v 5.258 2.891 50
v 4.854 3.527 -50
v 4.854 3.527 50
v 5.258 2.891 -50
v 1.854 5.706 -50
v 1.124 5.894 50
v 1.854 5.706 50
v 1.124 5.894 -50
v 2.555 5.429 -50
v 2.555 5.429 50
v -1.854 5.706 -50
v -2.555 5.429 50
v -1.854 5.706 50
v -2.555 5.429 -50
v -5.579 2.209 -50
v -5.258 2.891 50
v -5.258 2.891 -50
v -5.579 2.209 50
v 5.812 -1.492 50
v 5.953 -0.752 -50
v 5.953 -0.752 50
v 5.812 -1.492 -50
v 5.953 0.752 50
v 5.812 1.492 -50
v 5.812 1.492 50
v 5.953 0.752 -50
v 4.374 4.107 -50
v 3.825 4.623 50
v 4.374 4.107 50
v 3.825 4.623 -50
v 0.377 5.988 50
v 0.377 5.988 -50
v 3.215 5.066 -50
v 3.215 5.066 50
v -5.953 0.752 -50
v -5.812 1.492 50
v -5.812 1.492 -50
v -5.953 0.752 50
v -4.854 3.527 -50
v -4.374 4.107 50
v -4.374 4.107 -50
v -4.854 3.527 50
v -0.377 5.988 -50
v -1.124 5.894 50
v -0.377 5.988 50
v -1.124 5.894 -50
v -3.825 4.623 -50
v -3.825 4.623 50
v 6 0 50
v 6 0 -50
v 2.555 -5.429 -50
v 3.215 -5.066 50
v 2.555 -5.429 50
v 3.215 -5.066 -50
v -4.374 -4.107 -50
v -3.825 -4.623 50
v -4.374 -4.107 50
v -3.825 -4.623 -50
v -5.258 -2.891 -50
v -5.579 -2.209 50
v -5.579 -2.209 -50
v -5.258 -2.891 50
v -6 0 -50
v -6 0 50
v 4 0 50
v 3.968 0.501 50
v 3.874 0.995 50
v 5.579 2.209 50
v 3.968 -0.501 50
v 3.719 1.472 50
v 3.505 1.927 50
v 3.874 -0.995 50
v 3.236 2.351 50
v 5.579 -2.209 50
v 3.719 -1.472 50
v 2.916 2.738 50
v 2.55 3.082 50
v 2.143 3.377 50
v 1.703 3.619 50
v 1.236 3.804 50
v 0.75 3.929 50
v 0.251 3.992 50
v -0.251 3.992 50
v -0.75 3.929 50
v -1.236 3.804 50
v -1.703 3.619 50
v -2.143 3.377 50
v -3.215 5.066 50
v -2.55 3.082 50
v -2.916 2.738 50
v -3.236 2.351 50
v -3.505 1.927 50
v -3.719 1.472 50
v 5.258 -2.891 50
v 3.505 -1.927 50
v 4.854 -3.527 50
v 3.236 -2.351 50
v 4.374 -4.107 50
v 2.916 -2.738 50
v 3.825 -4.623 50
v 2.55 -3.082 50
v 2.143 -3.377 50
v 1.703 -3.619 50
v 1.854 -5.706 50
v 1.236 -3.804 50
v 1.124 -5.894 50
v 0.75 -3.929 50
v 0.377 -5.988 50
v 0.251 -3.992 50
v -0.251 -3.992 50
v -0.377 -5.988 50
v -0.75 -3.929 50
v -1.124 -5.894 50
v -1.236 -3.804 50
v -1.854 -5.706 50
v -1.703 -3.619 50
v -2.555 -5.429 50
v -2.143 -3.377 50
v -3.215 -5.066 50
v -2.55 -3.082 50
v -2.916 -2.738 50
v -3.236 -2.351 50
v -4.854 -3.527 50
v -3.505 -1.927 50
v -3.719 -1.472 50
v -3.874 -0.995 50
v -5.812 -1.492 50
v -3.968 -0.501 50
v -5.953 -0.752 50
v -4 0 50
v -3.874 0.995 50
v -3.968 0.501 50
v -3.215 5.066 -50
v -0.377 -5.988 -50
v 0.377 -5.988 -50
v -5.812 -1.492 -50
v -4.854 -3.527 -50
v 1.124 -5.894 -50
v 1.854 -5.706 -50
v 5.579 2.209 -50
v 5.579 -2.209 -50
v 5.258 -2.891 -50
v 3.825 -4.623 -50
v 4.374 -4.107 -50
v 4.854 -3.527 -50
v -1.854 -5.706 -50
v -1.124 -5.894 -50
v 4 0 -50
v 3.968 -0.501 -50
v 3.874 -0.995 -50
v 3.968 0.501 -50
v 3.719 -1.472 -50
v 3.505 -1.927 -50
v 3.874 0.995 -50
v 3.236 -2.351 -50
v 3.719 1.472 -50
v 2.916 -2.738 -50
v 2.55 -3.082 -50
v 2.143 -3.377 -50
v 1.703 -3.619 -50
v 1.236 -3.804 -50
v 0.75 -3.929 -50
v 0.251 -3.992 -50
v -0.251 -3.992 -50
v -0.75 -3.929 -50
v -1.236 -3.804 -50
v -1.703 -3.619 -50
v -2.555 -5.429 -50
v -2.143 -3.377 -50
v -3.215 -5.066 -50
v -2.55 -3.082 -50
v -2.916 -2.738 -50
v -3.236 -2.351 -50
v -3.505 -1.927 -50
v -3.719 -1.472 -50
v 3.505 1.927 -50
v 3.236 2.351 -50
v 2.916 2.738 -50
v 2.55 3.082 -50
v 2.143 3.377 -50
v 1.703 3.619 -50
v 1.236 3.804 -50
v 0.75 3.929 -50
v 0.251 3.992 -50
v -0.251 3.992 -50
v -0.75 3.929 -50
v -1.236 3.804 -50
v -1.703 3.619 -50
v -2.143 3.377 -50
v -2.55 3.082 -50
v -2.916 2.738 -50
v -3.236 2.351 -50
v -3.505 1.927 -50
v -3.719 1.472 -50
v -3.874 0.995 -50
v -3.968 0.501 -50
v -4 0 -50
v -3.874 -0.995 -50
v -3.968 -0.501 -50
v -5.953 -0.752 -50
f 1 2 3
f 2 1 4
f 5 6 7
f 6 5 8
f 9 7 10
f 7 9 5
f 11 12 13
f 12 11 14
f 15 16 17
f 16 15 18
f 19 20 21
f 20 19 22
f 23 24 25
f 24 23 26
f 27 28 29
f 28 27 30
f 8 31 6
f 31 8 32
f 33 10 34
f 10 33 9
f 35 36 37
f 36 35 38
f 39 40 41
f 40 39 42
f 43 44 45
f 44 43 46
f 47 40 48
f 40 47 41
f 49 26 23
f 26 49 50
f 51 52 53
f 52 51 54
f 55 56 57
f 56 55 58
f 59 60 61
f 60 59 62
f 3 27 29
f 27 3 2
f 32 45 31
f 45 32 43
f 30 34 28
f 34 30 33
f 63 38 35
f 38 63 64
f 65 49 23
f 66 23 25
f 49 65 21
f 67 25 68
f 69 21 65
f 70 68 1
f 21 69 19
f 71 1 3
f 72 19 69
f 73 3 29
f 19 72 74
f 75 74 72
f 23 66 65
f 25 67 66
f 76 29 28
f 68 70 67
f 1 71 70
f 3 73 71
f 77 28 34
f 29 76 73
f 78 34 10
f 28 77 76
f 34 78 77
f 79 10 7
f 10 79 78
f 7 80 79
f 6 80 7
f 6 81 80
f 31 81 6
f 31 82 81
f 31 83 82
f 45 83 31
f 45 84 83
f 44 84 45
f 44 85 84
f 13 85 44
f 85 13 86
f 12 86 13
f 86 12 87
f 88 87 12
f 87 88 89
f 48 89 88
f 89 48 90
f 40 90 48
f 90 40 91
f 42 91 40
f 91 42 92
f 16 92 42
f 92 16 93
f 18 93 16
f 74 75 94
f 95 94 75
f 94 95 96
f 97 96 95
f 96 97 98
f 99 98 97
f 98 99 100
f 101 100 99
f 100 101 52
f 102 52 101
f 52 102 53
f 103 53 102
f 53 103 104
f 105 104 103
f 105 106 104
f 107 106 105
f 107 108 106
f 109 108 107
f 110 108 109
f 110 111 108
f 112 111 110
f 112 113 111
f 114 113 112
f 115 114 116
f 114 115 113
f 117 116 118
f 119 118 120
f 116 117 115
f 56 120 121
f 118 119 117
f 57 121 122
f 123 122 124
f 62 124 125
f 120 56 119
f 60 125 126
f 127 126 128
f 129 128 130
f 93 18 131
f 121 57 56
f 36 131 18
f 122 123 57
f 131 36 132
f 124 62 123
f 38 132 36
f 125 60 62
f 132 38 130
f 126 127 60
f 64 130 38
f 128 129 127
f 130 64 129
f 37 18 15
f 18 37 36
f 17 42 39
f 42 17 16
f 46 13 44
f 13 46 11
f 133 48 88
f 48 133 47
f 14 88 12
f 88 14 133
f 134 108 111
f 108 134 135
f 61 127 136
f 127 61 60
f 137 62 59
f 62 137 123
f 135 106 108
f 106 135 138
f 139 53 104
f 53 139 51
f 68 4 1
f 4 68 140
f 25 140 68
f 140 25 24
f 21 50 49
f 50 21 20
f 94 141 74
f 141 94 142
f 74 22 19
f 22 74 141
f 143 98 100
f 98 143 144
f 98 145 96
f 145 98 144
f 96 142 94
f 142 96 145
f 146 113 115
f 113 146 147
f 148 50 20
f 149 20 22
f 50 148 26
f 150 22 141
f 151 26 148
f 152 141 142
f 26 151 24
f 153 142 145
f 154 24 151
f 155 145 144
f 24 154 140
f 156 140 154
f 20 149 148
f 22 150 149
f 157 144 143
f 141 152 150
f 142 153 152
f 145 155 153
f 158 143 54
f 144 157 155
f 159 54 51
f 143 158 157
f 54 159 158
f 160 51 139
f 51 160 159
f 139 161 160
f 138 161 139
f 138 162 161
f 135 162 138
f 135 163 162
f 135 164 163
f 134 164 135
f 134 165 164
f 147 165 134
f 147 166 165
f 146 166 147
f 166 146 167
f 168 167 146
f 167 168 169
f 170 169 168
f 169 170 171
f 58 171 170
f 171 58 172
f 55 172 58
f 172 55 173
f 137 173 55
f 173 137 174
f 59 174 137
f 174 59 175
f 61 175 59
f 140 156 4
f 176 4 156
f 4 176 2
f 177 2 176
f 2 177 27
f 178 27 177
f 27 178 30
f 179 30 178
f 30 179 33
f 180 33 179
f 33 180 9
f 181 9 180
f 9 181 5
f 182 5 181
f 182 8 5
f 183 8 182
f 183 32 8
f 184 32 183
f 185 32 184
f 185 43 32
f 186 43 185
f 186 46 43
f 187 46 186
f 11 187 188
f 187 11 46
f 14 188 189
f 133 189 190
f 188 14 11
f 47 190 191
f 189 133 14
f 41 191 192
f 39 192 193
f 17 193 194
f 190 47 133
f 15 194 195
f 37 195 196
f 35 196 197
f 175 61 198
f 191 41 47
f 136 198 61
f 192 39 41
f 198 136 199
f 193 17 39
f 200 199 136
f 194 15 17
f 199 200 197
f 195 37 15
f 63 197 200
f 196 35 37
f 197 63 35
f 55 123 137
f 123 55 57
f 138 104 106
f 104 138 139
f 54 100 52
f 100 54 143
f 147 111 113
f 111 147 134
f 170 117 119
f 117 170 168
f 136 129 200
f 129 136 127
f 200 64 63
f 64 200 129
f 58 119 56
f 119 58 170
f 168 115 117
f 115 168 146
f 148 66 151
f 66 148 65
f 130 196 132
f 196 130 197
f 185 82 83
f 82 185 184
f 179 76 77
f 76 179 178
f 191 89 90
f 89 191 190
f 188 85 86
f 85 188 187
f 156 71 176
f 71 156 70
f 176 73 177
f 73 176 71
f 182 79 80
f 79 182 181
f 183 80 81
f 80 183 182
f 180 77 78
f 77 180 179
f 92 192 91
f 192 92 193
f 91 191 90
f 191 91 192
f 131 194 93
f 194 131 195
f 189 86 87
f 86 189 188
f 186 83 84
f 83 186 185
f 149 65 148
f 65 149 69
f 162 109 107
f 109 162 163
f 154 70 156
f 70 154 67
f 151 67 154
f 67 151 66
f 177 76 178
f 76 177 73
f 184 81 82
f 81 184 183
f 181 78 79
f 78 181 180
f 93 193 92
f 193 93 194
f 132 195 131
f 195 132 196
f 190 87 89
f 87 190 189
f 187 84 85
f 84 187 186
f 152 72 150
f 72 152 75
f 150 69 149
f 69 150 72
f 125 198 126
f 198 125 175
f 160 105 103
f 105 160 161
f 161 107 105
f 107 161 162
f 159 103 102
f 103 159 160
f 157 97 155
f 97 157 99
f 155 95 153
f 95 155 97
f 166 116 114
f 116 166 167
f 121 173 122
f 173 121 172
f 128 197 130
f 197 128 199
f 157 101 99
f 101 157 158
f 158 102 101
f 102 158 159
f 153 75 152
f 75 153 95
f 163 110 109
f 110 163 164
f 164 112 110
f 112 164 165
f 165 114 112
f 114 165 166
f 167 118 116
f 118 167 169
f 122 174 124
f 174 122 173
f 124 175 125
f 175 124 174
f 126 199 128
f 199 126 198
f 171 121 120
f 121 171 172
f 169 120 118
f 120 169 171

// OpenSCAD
$fn = 50;


difference() {
	union() {
		translate(v = [0, 0, -50.0000000000]) {
			cylinder(h = 100, r = 6.0000000000);
		}
	}
	union() {
		translate(v = [0, 0, -100.0000000000]) {
			cylinder(h = 200, r = 4);
		}
	}
}
